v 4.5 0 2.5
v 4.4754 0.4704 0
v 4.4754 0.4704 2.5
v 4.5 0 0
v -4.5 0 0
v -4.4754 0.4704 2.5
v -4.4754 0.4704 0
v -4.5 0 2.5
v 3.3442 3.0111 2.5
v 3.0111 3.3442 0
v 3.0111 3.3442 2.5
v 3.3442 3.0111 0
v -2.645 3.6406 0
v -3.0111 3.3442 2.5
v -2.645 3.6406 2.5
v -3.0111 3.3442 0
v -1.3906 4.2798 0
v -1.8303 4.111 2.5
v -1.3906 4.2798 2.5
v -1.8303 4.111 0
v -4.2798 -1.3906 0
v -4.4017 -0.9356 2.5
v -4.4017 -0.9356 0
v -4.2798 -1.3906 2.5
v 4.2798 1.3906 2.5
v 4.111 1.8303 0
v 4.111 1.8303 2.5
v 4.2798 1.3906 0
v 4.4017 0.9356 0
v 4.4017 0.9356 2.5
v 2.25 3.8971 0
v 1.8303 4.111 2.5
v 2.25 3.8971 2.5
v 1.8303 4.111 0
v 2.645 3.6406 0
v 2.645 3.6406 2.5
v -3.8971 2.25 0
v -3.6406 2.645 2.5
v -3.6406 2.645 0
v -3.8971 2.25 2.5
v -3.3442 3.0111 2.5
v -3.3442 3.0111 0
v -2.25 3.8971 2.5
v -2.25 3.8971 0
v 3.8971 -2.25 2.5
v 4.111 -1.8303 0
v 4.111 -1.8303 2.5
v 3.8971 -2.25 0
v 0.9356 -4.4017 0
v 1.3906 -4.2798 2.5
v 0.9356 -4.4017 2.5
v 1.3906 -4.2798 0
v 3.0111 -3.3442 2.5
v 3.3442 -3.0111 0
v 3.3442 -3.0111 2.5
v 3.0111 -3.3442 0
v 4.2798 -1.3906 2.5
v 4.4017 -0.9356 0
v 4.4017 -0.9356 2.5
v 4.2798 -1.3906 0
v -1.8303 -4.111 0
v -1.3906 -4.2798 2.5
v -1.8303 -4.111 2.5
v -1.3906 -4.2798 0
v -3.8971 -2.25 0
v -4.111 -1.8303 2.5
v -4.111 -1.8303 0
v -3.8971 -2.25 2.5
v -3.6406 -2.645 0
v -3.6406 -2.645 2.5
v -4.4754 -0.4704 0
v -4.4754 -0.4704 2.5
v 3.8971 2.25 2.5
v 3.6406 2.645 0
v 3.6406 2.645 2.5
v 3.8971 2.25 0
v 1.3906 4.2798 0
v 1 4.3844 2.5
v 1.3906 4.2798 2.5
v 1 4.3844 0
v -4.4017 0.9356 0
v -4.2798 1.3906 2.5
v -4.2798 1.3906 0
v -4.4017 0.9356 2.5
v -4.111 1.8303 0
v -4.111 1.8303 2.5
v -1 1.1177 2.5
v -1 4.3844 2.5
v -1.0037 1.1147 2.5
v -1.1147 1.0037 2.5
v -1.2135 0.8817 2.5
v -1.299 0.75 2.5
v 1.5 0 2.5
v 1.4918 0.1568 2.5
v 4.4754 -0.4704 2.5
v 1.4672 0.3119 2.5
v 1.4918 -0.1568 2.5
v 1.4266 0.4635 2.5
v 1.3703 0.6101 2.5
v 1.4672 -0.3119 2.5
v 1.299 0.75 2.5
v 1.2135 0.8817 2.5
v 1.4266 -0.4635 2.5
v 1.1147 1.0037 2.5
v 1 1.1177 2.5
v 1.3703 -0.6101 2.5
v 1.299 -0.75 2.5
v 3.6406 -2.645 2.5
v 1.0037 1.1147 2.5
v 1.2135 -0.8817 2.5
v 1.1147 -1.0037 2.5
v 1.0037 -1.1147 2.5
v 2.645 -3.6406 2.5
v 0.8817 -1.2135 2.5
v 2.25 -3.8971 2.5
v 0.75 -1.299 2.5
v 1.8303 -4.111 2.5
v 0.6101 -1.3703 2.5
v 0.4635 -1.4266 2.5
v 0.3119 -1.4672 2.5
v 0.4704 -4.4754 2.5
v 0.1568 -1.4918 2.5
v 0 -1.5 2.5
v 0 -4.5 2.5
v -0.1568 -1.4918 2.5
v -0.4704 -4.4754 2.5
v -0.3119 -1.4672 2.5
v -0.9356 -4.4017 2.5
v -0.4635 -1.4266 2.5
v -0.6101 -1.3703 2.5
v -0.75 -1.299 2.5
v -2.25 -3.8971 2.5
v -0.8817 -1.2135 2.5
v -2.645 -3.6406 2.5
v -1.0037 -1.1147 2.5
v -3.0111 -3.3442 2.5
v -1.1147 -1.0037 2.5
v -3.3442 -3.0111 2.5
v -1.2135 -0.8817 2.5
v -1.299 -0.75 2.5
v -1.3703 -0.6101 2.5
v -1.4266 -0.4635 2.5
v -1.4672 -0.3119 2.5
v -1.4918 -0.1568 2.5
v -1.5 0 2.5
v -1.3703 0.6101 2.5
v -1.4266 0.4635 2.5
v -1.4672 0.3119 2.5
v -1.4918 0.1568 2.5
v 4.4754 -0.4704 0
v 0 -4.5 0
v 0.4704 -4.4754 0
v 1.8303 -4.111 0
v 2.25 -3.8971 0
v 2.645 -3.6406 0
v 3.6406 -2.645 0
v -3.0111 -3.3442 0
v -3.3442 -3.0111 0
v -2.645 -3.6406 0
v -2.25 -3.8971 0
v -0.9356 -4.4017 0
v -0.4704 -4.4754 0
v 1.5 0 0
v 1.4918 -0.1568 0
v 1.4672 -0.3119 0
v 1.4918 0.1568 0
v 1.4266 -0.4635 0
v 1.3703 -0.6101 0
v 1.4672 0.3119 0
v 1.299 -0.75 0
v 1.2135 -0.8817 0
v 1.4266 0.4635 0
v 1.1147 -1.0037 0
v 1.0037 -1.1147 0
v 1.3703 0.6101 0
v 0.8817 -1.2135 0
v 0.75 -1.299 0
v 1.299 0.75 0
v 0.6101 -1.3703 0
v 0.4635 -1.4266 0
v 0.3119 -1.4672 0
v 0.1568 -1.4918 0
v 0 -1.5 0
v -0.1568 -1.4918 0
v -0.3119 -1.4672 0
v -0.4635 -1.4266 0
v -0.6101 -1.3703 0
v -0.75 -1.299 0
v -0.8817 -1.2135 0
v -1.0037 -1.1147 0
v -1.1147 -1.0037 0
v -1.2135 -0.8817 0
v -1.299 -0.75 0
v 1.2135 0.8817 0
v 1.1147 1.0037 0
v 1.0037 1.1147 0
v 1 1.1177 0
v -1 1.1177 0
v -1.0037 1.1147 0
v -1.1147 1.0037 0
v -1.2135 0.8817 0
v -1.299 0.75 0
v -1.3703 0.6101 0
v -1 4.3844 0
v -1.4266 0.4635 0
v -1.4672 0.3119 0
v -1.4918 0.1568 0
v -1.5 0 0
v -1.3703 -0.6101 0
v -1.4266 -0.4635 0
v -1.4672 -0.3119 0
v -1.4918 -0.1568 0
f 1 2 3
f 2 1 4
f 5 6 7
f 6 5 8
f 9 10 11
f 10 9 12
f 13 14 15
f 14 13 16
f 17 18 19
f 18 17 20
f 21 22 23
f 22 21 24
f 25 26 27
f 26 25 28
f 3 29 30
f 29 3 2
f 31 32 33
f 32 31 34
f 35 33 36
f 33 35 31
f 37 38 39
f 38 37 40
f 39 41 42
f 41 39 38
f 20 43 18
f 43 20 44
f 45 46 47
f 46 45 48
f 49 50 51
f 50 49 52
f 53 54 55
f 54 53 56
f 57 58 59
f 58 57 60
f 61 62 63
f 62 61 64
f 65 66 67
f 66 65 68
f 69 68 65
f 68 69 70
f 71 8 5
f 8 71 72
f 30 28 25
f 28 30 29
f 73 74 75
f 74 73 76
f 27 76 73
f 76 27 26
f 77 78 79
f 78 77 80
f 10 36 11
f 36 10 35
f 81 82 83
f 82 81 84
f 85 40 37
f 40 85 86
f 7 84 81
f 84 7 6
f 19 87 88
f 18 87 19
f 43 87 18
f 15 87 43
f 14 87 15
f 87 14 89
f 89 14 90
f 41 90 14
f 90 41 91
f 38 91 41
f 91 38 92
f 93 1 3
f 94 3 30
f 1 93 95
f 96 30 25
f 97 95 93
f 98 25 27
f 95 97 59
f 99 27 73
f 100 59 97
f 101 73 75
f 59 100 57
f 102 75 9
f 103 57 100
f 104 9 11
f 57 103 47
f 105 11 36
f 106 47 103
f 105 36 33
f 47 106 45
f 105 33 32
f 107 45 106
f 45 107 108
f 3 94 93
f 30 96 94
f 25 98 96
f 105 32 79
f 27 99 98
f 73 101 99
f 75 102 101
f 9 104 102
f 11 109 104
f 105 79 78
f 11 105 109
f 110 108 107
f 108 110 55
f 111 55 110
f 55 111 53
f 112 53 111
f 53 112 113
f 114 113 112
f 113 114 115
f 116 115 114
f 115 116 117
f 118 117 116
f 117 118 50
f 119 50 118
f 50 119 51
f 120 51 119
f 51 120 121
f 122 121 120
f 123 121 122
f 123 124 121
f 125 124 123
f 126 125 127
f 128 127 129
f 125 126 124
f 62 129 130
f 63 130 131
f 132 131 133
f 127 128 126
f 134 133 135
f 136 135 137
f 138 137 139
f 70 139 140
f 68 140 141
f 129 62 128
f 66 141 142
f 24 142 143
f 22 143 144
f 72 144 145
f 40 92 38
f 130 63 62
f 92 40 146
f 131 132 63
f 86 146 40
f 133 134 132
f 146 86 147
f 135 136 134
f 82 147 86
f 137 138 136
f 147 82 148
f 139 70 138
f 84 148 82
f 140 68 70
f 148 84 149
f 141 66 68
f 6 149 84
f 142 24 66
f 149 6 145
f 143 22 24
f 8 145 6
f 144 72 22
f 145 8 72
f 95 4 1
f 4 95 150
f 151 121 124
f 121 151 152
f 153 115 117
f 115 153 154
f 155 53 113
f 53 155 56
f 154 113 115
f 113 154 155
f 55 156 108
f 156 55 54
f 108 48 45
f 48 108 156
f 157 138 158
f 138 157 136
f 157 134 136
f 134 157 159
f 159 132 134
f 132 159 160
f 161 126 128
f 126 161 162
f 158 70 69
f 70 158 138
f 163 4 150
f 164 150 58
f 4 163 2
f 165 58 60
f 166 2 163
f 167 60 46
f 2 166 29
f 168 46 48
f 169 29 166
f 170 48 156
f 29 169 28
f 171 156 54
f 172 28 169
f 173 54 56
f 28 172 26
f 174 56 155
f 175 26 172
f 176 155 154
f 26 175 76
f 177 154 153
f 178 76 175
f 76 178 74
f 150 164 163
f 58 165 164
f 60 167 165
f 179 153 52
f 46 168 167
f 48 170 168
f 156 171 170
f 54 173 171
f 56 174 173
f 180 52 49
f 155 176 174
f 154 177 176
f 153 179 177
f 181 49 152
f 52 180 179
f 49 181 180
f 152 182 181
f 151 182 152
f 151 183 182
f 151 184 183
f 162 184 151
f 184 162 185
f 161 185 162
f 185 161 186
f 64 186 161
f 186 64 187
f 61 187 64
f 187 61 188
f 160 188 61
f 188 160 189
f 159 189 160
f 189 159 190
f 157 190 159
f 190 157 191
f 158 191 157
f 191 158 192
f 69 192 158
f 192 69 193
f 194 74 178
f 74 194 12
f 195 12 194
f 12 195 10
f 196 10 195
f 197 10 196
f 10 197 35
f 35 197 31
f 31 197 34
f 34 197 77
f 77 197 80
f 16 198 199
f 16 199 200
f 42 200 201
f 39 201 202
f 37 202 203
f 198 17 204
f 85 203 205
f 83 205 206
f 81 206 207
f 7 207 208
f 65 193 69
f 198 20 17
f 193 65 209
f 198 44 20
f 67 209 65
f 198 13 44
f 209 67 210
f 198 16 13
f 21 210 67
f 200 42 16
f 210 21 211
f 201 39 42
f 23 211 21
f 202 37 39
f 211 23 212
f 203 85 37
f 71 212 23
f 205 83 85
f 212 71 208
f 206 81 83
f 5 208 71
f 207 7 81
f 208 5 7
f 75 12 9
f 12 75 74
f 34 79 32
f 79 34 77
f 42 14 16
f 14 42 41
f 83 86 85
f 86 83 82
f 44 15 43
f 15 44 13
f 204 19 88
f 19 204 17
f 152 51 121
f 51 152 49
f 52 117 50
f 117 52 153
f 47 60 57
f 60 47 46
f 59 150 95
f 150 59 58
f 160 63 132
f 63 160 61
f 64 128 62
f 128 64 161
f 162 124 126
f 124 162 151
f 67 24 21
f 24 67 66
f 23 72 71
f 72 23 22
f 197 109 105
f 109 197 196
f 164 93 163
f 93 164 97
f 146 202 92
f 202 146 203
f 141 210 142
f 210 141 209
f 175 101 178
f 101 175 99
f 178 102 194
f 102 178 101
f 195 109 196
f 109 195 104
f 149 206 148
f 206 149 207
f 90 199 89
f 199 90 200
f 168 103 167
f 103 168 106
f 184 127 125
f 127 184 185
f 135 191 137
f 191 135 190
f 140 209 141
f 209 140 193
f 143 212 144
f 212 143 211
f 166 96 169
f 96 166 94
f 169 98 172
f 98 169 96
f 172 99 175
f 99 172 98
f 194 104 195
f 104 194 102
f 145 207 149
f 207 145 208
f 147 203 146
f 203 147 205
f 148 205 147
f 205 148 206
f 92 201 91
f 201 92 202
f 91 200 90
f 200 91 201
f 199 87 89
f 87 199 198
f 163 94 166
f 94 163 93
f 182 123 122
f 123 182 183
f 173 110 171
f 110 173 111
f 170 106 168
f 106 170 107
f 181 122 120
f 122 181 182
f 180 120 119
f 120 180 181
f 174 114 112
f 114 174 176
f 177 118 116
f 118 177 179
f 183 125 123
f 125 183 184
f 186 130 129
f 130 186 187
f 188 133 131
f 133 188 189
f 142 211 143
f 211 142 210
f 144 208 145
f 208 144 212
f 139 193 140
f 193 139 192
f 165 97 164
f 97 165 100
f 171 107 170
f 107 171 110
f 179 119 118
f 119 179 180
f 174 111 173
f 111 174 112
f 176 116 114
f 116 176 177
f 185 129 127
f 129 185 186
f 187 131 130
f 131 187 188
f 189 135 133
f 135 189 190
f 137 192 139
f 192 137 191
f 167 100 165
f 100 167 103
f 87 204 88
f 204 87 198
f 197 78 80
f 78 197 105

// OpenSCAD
$fn=60;

module ring(){
    difference(){
        cylinder(d=9,h=2.5);
        cylinder(d=3,h=3.5);
    }
}

module slit(){
    translate([-1,0,0]) cube([2,10,4]);
}

difference(){
    ring();
    slit();
}
